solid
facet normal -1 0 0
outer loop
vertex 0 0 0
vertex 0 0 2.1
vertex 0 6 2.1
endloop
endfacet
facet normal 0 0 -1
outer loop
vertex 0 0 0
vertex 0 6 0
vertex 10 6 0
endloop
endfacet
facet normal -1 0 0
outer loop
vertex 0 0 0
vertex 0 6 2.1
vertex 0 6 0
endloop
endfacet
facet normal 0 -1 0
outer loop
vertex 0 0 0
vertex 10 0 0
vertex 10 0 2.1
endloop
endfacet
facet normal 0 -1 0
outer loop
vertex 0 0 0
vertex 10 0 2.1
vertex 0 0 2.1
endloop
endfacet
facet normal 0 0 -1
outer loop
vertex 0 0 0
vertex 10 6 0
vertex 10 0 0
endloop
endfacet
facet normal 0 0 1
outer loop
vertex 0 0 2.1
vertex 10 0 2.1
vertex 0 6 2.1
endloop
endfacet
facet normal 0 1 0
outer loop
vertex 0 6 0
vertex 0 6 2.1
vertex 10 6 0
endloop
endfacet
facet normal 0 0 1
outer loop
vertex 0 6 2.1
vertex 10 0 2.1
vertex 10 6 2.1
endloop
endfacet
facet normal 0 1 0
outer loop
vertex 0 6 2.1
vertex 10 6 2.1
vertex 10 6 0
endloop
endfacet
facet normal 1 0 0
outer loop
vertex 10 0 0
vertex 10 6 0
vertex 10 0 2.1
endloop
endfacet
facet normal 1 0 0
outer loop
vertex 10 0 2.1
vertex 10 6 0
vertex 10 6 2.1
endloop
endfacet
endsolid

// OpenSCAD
/* Warning, this is a very basic generator with a lot of approximation 
input data : [QFN, NTA, 10x6x2.1mm, 54, , A, C04-01086A]
generated by com.zoubworld.electronics.cad.model3d.Basic
Date : Sun Feb 15 10:50:49 CET 2026
*/

//body
color("black")
translate([0,0,0])
cube([10.0,6.0,2.1], center=false);
